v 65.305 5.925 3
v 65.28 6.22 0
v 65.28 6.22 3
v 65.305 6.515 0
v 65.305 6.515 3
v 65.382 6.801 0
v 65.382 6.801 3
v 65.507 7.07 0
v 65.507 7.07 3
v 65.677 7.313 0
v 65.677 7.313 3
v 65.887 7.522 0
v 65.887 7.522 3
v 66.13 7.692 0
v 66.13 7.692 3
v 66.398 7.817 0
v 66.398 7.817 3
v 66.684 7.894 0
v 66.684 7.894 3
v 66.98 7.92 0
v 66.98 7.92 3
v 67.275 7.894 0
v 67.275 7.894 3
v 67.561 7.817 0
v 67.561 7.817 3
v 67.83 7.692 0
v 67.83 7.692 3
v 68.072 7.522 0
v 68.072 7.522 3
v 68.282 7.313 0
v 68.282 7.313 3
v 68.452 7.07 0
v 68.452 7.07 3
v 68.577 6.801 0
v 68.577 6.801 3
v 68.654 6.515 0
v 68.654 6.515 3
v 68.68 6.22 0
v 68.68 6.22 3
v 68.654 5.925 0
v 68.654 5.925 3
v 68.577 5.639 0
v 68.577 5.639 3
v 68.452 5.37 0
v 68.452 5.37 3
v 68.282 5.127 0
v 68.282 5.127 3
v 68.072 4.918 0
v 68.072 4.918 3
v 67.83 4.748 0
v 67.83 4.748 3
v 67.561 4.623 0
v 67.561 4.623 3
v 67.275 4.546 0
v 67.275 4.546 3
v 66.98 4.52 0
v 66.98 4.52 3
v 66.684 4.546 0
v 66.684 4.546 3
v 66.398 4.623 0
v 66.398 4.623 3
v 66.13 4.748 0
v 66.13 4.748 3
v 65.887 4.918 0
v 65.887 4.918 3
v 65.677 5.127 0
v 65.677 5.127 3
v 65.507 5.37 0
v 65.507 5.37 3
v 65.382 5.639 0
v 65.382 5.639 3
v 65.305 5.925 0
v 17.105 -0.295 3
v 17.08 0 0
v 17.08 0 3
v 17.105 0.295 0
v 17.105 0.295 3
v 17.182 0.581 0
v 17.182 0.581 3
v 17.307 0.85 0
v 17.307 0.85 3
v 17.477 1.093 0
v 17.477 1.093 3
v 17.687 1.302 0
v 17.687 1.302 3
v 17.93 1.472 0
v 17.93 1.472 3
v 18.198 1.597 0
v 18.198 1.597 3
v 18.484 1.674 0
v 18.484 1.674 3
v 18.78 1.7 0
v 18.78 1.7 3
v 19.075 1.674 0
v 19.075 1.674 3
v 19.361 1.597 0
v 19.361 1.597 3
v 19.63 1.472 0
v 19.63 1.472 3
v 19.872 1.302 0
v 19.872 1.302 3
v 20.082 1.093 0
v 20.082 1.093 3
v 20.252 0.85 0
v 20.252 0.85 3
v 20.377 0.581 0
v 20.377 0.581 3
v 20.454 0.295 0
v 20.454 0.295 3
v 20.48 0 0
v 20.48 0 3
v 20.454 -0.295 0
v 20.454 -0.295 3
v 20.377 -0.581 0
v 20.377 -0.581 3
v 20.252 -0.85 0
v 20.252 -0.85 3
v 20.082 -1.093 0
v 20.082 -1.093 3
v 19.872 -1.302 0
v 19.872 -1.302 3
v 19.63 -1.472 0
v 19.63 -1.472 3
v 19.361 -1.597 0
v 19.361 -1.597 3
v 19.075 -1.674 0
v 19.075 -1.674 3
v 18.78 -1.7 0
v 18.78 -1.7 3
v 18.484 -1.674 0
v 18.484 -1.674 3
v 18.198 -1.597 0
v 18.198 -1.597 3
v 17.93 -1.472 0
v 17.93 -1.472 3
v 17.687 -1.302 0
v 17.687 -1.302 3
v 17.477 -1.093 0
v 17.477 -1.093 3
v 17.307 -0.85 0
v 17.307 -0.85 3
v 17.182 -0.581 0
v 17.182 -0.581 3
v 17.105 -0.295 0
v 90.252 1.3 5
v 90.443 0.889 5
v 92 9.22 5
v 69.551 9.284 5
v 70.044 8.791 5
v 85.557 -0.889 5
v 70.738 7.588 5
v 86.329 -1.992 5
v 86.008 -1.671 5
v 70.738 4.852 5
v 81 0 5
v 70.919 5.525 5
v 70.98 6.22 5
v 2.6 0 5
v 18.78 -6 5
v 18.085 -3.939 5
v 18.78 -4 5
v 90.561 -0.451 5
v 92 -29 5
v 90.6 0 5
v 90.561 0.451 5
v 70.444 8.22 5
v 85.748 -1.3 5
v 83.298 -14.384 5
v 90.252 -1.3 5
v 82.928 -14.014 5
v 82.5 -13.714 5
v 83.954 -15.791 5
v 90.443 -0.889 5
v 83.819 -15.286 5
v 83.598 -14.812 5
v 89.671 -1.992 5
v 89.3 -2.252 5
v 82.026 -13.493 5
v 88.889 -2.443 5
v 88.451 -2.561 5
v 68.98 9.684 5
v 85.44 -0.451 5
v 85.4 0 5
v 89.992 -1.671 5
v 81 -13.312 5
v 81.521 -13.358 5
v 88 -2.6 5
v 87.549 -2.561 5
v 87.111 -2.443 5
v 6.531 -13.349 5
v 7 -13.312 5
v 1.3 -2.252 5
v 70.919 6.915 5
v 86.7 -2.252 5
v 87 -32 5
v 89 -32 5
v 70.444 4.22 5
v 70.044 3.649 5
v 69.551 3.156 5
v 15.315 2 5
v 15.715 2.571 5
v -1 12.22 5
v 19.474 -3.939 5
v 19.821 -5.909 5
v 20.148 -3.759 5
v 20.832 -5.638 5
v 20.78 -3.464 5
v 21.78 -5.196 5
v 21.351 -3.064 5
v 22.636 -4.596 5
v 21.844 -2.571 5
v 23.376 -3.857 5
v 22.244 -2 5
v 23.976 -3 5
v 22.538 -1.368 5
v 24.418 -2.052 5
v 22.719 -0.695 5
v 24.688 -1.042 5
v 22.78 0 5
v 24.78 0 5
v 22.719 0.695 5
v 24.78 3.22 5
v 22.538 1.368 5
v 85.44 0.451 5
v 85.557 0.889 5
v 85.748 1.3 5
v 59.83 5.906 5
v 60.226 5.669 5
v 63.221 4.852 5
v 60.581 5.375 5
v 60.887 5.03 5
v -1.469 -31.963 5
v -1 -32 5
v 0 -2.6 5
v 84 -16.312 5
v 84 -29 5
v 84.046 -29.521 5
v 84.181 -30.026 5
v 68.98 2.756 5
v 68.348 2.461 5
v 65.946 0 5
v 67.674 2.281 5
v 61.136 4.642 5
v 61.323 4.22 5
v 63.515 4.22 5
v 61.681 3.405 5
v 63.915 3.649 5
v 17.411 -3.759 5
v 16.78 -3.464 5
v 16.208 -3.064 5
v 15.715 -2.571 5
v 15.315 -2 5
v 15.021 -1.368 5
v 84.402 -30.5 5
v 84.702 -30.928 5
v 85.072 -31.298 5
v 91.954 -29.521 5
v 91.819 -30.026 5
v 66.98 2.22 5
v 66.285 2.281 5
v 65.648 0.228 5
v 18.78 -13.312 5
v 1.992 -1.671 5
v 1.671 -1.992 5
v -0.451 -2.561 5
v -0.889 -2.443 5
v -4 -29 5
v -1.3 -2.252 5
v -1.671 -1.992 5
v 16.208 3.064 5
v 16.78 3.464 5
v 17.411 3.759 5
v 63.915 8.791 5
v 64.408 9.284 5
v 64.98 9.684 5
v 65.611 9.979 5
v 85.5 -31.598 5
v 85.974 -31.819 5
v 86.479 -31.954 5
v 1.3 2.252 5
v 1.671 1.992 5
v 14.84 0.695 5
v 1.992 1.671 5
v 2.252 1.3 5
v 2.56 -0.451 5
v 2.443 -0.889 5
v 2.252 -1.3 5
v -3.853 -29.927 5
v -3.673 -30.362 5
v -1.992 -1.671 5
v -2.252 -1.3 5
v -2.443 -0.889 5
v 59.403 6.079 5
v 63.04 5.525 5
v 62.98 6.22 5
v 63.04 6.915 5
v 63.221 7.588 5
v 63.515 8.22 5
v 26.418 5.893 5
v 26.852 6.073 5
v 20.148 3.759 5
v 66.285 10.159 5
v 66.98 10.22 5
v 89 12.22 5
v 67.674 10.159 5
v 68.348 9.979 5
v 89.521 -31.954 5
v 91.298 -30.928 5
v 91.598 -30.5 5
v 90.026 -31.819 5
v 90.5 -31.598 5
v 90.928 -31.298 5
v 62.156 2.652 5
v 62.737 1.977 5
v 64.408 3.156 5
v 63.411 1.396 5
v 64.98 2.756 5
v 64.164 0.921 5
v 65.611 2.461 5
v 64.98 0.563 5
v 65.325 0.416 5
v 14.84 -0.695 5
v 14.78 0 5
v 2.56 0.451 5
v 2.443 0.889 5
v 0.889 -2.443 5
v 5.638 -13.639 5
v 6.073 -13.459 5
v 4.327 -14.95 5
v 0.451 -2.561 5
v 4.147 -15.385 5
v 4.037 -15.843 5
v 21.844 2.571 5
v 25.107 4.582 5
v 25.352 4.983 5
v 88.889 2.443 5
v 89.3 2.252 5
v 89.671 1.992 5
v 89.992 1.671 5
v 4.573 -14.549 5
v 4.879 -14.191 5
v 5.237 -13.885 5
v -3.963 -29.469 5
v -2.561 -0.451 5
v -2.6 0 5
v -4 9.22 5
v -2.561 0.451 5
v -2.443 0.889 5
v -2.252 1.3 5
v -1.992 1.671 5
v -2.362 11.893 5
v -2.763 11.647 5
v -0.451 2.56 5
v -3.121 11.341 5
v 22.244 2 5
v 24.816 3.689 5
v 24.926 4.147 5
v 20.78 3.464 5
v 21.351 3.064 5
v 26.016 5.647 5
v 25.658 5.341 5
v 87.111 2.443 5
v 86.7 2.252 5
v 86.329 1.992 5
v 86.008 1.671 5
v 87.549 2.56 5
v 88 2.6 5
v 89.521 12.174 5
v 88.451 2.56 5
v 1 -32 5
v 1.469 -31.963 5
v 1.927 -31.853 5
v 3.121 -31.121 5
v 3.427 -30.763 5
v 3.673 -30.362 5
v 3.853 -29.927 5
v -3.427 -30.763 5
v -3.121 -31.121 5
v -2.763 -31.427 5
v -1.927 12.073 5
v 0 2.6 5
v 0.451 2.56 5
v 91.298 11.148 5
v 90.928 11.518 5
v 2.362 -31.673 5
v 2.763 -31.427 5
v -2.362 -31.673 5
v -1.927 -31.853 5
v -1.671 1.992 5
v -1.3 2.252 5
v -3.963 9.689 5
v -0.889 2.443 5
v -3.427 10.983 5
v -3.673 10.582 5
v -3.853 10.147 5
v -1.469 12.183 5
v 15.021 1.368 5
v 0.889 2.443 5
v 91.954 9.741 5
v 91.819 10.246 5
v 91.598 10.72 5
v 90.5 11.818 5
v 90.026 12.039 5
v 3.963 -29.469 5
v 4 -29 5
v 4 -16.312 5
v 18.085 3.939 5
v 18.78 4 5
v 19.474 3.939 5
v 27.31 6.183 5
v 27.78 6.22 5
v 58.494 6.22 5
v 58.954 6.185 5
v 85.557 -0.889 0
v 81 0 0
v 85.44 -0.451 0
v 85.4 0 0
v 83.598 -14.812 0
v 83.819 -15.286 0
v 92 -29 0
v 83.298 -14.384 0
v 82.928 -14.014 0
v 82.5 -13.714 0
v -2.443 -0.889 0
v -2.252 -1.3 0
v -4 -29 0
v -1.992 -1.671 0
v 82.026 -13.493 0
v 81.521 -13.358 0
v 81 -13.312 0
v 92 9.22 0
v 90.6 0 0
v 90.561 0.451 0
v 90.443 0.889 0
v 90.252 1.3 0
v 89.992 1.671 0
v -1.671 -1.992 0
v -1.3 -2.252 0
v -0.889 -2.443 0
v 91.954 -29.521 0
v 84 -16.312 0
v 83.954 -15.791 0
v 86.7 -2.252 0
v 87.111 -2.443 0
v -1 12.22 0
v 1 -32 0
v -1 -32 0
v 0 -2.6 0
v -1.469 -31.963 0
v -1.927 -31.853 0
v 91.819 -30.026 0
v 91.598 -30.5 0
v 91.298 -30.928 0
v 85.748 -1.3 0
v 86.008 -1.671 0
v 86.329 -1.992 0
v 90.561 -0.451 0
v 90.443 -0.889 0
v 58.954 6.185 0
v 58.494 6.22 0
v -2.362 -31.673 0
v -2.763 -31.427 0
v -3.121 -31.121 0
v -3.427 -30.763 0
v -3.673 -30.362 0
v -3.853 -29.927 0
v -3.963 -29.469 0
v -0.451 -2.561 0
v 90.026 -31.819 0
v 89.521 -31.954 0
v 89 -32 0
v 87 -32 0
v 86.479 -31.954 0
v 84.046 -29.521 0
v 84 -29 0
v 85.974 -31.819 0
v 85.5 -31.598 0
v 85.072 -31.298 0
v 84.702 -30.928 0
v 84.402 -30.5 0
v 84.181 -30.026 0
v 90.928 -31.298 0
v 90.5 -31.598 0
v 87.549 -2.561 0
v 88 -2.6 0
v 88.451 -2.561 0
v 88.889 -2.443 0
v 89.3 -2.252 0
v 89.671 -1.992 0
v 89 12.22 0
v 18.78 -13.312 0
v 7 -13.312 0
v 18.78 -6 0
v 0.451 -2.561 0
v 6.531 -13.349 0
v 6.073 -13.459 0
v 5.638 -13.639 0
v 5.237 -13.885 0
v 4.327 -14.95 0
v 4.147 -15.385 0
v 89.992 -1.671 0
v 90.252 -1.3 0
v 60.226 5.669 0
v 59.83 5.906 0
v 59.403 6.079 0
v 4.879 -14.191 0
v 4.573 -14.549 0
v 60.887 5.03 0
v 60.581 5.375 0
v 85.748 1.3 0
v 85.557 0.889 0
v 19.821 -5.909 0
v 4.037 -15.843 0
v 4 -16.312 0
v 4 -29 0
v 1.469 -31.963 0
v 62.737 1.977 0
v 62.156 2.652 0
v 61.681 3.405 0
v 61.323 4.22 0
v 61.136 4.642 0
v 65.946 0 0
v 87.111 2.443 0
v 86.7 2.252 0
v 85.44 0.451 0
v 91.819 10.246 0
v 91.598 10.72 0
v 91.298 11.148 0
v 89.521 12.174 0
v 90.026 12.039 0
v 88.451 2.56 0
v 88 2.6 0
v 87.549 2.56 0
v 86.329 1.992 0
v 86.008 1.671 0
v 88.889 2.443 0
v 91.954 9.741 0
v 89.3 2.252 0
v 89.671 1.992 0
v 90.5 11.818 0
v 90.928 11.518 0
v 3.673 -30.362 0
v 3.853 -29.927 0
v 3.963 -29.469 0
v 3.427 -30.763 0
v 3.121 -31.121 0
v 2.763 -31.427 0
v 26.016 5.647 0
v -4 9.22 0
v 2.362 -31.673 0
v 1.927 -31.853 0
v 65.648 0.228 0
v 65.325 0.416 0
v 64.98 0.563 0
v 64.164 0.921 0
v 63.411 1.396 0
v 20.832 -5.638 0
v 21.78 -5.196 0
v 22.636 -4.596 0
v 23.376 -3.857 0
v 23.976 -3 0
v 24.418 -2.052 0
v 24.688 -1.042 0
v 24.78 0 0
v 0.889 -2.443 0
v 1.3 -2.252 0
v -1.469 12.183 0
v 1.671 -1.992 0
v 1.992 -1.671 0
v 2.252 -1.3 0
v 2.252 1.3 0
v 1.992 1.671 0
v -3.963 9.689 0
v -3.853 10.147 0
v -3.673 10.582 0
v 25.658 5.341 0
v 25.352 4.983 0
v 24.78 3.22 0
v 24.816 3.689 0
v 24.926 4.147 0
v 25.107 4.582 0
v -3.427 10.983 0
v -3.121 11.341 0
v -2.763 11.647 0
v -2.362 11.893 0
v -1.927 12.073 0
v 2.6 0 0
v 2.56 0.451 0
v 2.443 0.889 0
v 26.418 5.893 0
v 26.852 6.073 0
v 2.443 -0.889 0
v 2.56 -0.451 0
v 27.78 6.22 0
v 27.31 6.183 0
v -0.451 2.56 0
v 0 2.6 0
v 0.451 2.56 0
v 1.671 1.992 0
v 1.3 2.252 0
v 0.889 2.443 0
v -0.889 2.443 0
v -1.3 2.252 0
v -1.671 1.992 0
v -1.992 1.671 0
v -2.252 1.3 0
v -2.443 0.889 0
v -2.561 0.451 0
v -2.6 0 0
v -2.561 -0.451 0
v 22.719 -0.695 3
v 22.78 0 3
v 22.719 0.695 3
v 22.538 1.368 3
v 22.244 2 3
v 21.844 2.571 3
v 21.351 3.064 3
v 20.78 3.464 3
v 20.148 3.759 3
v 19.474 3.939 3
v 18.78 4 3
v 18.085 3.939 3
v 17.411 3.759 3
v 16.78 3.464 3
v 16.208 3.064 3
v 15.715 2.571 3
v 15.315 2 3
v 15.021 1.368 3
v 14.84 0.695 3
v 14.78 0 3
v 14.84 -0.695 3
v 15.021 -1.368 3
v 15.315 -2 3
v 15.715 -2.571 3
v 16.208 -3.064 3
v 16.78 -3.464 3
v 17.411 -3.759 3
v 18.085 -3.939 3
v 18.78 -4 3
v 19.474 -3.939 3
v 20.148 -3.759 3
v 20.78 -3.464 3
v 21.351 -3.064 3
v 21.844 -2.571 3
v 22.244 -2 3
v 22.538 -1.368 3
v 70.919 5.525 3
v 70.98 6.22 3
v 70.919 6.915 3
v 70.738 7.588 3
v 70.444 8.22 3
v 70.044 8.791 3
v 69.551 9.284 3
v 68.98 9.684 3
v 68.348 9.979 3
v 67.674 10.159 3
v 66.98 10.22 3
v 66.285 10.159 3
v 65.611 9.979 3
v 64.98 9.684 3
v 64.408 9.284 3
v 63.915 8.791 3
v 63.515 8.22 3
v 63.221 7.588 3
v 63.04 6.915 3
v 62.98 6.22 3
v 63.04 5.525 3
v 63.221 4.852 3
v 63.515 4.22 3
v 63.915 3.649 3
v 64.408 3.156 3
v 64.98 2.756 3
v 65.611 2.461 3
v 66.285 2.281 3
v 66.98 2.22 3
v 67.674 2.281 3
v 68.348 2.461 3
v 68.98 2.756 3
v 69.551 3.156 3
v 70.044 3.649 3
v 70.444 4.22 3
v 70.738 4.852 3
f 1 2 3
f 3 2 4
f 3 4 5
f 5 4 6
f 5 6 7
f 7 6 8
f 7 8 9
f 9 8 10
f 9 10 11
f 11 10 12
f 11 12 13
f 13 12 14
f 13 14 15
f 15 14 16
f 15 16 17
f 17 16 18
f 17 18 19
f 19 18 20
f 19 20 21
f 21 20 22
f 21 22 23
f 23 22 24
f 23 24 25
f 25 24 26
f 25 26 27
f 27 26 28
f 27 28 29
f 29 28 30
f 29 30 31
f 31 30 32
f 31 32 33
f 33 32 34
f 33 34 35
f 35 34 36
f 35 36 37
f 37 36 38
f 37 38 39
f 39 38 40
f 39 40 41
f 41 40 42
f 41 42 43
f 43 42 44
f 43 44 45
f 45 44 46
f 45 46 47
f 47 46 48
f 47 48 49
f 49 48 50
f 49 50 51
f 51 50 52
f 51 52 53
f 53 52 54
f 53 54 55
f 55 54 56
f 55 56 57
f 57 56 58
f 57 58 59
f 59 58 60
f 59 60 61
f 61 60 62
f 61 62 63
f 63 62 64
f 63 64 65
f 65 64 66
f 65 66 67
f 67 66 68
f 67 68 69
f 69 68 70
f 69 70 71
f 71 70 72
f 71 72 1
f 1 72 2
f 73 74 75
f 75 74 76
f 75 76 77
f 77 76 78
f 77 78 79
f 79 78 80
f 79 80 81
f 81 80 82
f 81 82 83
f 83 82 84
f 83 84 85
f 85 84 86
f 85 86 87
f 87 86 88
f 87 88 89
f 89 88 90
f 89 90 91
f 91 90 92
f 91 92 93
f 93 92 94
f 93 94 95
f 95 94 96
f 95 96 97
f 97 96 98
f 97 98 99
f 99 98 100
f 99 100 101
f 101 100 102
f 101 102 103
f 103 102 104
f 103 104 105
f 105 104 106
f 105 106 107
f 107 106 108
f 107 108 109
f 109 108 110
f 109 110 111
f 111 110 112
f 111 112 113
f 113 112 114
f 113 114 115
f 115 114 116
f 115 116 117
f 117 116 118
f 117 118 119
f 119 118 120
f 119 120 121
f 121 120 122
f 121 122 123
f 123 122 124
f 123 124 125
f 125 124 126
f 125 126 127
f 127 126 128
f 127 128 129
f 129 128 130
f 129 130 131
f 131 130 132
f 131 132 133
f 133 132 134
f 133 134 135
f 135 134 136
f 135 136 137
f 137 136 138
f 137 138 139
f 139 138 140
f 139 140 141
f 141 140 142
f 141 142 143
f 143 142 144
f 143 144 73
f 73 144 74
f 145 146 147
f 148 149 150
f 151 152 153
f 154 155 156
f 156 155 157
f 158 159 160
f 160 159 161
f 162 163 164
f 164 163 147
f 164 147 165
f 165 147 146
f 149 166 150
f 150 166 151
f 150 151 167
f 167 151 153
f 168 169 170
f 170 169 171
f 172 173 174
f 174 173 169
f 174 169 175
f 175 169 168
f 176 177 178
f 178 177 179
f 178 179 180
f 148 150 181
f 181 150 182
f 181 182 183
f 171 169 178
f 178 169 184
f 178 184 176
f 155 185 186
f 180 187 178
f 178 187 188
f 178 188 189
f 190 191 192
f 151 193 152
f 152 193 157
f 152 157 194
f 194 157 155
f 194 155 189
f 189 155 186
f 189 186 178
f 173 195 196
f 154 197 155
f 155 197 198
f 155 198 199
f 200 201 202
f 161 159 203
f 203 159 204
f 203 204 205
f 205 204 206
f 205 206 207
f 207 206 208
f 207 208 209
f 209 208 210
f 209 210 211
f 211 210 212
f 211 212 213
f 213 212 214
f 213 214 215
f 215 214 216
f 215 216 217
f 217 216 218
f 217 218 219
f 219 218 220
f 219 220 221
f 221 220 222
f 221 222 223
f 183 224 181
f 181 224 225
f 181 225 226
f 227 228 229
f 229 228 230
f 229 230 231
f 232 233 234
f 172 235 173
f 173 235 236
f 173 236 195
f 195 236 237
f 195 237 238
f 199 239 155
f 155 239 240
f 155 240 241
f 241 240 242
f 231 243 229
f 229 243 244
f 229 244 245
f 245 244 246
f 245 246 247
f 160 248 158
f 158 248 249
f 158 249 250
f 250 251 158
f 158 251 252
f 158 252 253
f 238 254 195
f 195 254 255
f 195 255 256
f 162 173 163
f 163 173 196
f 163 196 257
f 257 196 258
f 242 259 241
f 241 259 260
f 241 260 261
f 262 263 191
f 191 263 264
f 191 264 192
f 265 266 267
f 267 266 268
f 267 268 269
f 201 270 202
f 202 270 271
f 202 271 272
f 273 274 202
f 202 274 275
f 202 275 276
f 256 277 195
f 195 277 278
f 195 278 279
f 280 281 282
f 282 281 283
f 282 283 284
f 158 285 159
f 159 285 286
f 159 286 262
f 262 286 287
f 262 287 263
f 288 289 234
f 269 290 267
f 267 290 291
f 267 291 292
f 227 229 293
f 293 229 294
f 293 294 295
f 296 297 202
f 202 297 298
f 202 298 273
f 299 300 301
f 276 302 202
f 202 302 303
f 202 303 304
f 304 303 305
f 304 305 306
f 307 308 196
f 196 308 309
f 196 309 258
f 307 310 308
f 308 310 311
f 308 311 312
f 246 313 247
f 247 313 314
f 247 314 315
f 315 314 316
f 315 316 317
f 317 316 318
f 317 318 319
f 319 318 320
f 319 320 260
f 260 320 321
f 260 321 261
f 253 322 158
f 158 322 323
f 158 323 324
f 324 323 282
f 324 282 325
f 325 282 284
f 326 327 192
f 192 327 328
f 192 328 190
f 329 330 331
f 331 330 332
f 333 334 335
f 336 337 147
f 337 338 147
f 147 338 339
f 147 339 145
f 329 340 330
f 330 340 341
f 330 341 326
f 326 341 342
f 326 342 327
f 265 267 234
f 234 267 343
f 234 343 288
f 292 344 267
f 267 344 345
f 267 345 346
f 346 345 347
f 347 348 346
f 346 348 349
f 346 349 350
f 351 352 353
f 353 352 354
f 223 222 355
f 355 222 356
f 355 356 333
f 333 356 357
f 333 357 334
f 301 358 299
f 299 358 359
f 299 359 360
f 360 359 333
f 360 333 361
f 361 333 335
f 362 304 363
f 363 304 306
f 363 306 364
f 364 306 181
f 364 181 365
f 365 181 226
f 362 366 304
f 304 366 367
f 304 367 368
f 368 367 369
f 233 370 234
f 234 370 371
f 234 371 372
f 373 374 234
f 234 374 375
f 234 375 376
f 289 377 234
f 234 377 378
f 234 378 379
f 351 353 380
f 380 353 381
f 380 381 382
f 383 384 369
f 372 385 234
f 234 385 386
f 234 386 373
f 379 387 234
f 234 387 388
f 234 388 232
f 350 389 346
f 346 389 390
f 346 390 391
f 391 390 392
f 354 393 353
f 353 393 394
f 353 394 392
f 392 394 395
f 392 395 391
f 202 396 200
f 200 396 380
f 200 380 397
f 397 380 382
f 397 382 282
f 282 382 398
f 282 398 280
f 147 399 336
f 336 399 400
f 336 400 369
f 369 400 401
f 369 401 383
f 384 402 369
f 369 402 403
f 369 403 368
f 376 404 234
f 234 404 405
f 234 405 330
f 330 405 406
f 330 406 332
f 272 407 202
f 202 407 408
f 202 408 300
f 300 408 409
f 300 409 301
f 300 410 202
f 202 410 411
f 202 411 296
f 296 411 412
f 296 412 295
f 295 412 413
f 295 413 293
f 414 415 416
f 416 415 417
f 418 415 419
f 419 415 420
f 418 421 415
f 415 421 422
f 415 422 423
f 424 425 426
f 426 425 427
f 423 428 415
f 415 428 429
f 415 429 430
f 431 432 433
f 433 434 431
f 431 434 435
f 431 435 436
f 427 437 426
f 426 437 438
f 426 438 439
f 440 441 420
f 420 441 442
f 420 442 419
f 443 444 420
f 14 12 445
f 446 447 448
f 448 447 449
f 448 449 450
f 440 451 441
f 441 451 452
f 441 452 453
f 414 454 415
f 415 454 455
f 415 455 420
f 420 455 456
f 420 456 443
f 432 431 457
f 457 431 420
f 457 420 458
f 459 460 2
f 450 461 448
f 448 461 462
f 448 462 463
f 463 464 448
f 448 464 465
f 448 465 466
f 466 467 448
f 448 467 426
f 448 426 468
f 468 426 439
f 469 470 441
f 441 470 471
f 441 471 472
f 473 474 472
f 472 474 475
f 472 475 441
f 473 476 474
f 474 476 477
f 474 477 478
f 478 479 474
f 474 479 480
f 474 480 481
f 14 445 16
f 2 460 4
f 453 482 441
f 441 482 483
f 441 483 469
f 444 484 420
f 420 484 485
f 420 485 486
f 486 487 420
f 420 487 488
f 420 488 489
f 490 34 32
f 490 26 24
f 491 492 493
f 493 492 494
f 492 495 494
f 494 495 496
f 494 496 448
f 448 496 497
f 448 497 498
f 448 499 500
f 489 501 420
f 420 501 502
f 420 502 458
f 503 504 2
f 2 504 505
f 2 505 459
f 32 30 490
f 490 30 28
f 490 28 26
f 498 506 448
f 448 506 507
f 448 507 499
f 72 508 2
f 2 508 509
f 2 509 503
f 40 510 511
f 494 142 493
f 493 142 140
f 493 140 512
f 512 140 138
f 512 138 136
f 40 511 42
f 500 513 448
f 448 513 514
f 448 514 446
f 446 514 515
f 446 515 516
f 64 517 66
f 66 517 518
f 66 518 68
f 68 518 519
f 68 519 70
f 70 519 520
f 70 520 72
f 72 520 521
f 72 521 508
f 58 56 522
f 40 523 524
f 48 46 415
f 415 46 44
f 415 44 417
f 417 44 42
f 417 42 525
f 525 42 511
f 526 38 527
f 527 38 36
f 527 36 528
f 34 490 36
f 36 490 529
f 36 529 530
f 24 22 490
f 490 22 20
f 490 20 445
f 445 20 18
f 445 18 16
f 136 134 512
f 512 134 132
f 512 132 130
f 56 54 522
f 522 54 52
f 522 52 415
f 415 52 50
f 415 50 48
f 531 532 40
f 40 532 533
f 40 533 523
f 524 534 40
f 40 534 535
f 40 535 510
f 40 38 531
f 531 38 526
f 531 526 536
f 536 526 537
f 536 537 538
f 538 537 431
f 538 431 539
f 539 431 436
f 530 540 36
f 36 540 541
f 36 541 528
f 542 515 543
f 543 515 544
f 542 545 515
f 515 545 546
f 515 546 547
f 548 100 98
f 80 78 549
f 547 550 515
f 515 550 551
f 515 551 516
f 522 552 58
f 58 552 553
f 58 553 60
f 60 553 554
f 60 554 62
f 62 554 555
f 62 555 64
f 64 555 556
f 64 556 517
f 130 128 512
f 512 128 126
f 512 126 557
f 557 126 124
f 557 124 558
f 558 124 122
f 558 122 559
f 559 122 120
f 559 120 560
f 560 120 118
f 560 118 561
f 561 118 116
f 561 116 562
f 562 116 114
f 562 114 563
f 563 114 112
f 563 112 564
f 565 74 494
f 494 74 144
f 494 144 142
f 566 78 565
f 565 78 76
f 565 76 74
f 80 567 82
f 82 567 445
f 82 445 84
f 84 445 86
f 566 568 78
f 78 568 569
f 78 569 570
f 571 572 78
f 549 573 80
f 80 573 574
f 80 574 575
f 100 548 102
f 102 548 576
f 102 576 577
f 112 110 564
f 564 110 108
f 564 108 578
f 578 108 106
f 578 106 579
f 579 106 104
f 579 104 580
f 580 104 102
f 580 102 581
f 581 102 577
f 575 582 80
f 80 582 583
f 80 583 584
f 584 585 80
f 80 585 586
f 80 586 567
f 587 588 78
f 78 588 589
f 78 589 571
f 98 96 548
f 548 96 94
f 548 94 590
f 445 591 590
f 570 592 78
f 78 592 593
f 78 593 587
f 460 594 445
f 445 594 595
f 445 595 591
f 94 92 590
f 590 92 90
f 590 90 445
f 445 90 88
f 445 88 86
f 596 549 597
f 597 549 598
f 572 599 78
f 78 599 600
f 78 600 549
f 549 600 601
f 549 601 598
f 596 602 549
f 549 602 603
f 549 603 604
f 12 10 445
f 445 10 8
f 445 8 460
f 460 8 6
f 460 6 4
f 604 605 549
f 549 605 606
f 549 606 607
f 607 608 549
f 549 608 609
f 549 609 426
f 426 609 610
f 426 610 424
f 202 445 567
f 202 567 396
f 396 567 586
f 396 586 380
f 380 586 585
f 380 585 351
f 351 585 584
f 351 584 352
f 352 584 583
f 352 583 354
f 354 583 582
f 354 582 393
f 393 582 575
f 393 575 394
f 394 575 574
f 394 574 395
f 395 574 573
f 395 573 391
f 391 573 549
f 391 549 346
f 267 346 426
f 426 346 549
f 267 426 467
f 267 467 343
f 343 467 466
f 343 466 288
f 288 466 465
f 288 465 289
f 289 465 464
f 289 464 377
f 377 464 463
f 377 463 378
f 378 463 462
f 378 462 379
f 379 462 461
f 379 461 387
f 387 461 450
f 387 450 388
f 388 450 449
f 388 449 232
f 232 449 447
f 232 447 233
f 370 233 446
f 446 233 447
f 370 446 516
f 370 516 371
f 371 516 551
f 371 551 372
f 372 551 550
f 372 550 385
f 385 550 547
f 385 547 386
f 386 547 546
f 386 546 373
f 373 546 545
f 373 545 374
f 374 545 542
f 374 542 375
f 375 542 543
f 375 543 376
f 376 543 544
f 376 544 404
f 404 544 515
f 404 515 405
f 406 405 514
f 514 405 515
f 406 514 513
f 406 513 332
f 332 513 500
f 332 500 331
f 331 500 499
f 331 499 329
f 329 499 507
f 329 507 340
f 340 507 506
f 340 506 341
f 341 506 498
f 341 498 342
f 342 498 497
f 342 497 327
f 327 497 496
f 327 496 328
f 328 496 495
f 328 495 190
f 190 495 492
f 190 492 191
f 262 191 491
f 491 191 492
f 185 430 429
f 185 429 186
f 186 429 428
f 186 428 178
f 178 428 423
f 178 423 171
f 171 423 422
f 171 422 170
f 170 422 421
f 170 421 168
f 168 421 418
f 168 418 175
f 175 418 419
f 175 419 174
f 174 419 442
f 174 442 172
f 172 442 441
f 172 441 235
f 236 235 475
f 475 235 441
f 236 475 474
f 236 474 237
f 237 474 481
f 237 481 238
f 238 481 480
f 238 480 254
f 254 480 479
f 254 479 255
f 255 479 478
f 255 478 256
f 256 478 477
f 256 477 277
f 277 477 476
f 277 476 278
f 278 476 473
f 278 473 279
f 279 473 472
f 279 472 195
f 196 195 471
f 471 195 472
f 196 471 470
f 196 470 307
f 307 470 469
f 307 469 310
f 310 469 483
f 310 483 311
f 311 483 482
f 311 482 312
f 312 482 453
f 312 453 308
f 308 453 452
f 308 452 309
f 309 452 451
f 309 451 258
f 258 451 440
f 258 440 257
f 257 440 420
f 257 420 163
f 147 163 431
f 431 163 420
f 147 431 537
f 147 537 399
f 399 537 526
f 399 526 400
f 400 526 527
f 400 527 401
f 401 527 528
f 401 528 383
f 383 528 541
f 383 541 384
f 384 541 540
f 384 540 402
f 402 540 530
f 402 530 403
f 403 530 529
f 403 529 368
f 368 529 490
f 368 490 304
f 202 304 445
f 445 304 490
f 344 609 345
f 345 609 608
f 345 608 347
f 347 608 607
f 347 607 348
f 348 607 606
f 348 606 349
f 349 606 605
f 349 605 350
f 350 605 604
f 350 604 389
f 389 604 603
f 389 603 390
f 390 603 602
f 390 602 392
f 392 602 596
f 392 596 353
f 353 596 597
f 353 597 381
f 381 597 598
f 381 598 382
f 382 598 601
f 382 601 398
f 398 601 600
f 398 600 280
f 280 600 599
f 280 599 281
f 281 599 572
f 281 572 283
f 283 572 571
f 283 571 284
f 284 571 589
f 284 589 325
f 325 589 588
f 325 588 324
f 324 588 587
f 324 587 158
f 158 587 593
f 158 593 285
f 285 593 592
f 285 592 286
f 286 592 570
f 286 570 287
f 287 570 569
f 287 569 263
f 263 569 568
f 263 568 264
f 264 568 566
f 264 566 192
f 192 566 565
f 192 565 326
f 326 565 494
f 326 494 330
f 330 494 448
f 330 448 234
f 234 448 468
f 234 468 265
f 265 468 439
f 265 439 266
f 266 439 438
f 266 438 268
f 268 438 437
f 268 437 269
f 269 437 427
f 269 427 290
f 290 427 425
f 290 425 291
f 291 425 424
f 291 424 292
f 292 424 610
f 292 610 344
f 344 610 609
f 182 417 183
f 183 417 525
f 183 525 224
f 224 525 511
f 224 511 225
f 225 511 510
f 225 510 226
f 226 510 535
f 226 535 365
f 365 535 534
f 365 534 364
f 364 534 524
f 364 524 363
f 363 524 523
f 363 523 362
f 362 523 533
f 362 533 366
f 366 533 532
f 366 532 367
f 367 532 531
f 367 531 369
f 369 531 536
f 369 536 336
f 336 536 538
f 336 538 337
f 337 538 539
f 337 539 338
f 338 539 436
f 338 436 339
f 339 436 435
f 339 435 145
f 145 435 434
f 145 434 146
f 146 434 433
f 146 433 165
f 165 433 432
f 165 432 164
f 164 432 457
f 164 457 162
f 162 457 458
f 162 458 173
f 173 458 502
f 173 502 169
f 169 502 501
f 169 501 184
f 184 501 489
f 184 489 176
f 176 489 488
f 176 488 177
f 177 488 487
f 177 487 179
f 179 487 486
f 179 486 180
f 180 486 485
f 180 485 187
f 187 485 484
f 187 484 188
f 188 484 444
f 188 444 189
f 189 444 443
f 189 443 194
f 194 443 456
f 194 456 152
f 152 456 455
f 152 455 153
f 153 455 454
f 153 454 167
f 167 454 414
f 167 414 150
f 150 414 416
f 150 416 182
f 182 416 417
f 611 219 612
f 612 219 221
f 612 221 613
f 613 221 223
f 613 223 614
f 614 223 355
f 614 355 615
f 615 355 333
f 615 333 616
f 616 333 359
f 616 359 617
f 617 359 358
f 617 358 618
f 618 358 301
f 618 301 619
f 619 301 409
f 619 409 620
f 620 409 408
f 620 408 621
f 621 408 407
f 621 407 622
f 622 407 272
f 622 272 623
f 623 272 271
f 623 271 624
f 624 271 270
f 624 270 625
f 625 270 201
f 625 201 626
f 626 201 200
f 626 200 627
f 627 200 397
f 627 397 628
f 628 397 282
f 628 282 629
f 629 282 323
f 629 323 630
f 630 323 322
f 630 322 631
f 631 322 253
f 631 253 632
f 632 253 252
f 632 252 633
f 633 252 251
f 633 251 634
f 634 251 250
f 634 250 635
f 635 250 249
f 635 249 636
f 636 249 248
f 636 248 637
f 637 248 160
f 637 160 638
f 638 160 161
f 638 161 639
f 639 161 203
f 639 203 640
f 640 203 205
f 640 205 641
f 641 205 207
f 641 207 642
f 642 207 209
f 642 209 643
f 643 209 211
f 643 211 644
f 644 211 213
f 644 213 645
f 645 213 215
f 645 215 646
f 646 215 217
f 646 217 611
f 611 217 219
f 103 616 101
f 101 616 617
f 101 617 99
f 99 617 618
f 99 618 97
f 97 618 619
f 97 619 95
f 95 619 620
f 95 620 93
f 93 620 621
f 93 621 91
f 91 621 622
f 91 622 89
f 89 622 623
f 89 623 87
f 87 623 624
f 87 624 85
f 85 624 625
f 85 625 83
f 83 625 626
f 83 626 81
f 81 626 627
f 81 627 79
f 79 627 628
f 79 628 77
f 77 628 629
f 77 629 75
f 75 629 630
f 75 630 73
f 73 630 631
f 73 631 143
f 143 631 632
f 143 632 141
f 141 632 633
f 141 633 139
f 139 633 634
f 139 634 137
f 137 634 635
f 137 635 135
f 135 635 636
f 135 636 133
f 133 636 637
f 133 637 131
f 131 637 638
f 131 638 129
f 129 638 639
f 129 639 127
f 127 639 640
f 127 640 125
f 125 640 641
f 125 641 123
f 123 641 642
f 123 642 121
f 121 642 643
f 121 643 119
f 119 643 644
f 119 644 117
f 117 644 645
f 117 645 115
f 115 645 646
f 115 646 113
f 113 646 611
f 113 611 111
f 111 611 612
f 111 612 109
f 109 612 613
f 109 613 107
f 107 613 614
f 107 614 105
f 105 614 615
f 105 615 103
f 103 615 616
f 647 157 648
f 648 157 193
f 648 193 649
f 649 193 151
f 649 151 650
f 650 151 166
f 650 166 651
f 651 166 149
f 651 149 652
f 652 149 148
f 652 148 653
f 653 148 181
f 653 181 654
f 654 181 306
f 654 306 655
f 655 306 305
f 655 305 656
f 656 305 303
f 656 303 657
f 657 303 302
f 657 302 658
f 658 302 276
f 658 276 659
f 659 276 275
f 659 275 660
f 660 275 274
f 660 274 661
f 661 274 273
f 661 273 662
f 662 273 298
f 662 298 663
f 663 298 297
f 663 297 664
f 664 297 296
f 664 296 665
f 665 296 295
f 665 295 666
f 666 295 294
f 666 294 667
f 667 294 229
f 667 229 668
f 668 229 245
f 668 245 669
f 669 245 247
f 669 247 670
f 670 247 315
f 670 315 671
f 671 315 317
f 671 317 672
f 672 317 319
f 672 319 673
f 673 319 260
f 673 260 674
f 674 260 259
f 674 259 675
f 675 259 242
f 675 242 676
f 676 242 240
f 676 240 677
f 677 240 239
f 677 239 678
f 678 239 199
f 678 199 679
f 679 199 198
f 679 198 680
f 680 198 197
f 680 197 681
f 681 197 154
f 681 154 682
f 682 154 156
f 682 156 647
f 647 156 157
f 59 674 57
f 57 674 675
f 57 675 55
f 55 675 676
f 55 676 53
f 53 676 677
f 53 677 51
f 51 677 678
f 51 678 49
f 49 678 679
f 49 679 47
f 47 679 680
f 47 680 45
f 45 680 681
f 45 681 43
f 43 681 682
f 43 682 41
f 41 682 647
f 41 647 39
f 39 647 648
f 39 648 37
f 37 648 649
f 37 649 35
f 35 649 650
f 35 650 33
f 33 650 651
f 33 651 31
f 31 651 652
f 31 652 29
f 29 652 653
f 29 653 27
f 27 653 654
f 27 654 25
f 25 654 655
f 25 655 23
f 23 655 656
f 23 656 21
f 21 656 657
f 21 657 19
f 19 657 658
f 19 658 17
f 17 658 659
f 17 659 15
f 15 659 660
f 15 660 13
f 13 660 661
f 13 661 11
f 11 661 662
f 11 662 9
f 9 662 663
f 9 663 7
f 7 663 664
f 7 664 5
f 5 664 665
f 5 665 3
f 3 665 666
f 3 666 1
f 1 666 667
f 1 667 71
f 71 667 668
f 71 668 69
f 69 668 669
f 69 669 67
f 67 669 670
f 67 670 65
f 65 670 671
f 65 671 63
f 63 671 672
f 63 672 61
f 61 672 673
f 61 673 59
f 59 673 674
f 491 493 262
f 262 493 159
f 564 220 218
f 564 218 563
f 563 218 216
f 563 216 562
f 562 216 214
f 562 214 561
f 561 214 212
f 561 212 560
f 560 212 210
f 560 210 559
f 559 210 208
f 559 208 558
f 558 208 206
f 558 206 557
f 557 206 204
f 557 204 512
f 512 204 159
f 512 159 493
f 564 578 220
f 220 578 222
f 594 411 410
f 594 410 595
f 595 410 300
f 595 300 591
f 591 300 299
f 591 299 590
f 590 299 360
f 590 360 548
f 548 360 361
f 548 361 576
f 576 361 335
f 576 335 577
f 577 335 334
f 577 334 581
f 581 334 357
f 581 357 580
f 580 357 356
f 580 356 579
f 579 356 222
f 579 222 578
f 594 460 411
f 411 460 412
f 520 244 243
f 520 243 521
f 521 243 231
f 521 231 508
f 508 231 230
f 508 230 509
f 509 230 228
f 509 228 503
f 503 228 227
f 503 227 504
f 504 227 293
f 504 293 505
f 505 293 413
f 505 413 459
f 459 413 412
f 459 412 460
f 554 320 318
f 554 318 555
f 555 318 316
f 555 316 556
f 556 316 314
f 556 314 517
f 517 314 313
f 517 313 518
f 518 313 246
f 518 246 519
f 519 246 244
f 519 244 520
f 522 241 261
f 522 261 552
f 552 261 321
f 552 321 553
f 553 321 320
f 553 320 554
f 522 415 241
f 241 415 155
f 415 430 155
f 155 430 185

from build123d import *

# Parameters (mm, degrees)
ESQUISSE1_R             = 2.6
ESQUISSE1_R_2           = 1.7
BOSS_EXTRU_1_DEPTH      = 5
ESQUISSE2_R             = 4
ENL_V_MAT_EXTRU_1_DEPTH = 2
ENL_V_MAT_EXTRU_2_DEPTH = 5


with BuildPart() as part:
    # Esquisse1 → Boss.-Extru.1 (new body)
    with BuildSketch(Plane.XY):
        with BuildLine():
            Line((7, -13.31223453), (81, -13.31223453))
            ThreePointArc((81, -13.31223453), (83.121320344, -14.190914186), (84, -16.31223453))
            Line((84, -16.31223453), (84, -29))
            ThreePointArc((84, -29), (84.878679656, -31.121320344), (87, -32))
            Line((87, -32), (89, -32))
            ThreePointArc((89, -32), (91.121320344, -31.121320344), (92, -29))
            Line((92, -29), (92, 9.22))
            ThreePointArc((92, 9.22), (91.121320344, 11.341320344), (89, 12.22))
            Line((89, 12.22), (-1, 12.22))
            ThreePointArc((-1, 12.22), (-3.121320344, 11.341320344), (-4, 9.22))
            Line((-4, 9.22), (-4, -29))
            ThreePointArc((-4, -29), (-3.121320344, -31.121320344), (-1, -32))
            Line((-1, -32), (1, -32))
            ThreePointArc((1, -32), (3.121320344, -31.121320344), (4, -29))
            Line((4, -29), (4, -16.31223453))
            ThreePointArc((4, -16.31223453), (4.878679656, -14.190914186), (7, -13.31223453))
        make_face()
        Circle(ESQUISSE1_R, mode=Mode.SUBTRACT)
        with Locations((88, 0)):
            Circle(ESQUISSE1_R, mode=Mode.SUBTRACT)
        with Locations((18.779545265, 0)):
            Circle(ESQUISSE1_R_2, mode=Mode.SUBTRACT)
        with Locations((66.979545265, 6.22)):
            Circle(ESQUISSE1_R_2, mode=Mode.SUBTRACT)
    extrude(amount=BOSS_EXTRU_1_DEPTH)

    # Esquisse2 → Enlèv. mat.-Extru.1 (cut)
    with BuildSketch(Plane.XY.offset(5)):
        with Locations((18.779545265, 0)):
            Circle(ESQUISSE2_R)
        with Locations((66.979545265, 6.22)):
            Circle(ESQUISSE2_R)
    extrude(amount=-ENL_V_MAT_EXTRU_1_DEPTH, mode=Mode.SUBTRACT)

    # Esquisse3 → Enlèv. mat.-Extru.2 (cut)
    with BuildSketch(Plane.XY.offset(5)):
        with BuildLine():
            Line((18.779545265, -6), (18.779545265, -10.31223453))
            Line((18.779545265, -10.31223453), (18.779545265, -13.31223453))
            Line((18.779545265, -13.31223453), (21.779545265, -13.31223453))
            Line((21.779545265, -13.31223453), (63.979545265, -13.31223453))
            Line((63.979545265, -13.31223453), (81, -13.31223453))
            Line((81, -13.31223453), (81, 0))
            Line((81, 0), (65.946395614, 0))
            ThreePointArc((65.946395614, 0), (65.489457028, 0.327047013), (64.979545265, 0.563145751))
            ThreePointArc((64.979545265, 0.563145751), (62.736904578, 1.977359313), (61.322691016, 4.22))
            ThreePointArc((61.322691016, 4.22), (60.226314699, 5.669489743), (58.494263891, 6.22))
            Line((58.494263891, 6.22), (27.779545265, 6.22))
            ThreePointArc((27.779545265, 6.22), (25.658224922, 5.341320344), (24.779545265, 3.22))
            Line((24.779545265, 3.22), (24.779545265, 0))
            ThreePointArc((24.779545265, 0), (23.022185952, -4.242640687), (18.779545265, -6))
        make_face()
    extrude(amount=-ENL_V_MAT_EXTRU_2_DEPTH, mode=Mode.SUBTRACT)


solid = part.part
